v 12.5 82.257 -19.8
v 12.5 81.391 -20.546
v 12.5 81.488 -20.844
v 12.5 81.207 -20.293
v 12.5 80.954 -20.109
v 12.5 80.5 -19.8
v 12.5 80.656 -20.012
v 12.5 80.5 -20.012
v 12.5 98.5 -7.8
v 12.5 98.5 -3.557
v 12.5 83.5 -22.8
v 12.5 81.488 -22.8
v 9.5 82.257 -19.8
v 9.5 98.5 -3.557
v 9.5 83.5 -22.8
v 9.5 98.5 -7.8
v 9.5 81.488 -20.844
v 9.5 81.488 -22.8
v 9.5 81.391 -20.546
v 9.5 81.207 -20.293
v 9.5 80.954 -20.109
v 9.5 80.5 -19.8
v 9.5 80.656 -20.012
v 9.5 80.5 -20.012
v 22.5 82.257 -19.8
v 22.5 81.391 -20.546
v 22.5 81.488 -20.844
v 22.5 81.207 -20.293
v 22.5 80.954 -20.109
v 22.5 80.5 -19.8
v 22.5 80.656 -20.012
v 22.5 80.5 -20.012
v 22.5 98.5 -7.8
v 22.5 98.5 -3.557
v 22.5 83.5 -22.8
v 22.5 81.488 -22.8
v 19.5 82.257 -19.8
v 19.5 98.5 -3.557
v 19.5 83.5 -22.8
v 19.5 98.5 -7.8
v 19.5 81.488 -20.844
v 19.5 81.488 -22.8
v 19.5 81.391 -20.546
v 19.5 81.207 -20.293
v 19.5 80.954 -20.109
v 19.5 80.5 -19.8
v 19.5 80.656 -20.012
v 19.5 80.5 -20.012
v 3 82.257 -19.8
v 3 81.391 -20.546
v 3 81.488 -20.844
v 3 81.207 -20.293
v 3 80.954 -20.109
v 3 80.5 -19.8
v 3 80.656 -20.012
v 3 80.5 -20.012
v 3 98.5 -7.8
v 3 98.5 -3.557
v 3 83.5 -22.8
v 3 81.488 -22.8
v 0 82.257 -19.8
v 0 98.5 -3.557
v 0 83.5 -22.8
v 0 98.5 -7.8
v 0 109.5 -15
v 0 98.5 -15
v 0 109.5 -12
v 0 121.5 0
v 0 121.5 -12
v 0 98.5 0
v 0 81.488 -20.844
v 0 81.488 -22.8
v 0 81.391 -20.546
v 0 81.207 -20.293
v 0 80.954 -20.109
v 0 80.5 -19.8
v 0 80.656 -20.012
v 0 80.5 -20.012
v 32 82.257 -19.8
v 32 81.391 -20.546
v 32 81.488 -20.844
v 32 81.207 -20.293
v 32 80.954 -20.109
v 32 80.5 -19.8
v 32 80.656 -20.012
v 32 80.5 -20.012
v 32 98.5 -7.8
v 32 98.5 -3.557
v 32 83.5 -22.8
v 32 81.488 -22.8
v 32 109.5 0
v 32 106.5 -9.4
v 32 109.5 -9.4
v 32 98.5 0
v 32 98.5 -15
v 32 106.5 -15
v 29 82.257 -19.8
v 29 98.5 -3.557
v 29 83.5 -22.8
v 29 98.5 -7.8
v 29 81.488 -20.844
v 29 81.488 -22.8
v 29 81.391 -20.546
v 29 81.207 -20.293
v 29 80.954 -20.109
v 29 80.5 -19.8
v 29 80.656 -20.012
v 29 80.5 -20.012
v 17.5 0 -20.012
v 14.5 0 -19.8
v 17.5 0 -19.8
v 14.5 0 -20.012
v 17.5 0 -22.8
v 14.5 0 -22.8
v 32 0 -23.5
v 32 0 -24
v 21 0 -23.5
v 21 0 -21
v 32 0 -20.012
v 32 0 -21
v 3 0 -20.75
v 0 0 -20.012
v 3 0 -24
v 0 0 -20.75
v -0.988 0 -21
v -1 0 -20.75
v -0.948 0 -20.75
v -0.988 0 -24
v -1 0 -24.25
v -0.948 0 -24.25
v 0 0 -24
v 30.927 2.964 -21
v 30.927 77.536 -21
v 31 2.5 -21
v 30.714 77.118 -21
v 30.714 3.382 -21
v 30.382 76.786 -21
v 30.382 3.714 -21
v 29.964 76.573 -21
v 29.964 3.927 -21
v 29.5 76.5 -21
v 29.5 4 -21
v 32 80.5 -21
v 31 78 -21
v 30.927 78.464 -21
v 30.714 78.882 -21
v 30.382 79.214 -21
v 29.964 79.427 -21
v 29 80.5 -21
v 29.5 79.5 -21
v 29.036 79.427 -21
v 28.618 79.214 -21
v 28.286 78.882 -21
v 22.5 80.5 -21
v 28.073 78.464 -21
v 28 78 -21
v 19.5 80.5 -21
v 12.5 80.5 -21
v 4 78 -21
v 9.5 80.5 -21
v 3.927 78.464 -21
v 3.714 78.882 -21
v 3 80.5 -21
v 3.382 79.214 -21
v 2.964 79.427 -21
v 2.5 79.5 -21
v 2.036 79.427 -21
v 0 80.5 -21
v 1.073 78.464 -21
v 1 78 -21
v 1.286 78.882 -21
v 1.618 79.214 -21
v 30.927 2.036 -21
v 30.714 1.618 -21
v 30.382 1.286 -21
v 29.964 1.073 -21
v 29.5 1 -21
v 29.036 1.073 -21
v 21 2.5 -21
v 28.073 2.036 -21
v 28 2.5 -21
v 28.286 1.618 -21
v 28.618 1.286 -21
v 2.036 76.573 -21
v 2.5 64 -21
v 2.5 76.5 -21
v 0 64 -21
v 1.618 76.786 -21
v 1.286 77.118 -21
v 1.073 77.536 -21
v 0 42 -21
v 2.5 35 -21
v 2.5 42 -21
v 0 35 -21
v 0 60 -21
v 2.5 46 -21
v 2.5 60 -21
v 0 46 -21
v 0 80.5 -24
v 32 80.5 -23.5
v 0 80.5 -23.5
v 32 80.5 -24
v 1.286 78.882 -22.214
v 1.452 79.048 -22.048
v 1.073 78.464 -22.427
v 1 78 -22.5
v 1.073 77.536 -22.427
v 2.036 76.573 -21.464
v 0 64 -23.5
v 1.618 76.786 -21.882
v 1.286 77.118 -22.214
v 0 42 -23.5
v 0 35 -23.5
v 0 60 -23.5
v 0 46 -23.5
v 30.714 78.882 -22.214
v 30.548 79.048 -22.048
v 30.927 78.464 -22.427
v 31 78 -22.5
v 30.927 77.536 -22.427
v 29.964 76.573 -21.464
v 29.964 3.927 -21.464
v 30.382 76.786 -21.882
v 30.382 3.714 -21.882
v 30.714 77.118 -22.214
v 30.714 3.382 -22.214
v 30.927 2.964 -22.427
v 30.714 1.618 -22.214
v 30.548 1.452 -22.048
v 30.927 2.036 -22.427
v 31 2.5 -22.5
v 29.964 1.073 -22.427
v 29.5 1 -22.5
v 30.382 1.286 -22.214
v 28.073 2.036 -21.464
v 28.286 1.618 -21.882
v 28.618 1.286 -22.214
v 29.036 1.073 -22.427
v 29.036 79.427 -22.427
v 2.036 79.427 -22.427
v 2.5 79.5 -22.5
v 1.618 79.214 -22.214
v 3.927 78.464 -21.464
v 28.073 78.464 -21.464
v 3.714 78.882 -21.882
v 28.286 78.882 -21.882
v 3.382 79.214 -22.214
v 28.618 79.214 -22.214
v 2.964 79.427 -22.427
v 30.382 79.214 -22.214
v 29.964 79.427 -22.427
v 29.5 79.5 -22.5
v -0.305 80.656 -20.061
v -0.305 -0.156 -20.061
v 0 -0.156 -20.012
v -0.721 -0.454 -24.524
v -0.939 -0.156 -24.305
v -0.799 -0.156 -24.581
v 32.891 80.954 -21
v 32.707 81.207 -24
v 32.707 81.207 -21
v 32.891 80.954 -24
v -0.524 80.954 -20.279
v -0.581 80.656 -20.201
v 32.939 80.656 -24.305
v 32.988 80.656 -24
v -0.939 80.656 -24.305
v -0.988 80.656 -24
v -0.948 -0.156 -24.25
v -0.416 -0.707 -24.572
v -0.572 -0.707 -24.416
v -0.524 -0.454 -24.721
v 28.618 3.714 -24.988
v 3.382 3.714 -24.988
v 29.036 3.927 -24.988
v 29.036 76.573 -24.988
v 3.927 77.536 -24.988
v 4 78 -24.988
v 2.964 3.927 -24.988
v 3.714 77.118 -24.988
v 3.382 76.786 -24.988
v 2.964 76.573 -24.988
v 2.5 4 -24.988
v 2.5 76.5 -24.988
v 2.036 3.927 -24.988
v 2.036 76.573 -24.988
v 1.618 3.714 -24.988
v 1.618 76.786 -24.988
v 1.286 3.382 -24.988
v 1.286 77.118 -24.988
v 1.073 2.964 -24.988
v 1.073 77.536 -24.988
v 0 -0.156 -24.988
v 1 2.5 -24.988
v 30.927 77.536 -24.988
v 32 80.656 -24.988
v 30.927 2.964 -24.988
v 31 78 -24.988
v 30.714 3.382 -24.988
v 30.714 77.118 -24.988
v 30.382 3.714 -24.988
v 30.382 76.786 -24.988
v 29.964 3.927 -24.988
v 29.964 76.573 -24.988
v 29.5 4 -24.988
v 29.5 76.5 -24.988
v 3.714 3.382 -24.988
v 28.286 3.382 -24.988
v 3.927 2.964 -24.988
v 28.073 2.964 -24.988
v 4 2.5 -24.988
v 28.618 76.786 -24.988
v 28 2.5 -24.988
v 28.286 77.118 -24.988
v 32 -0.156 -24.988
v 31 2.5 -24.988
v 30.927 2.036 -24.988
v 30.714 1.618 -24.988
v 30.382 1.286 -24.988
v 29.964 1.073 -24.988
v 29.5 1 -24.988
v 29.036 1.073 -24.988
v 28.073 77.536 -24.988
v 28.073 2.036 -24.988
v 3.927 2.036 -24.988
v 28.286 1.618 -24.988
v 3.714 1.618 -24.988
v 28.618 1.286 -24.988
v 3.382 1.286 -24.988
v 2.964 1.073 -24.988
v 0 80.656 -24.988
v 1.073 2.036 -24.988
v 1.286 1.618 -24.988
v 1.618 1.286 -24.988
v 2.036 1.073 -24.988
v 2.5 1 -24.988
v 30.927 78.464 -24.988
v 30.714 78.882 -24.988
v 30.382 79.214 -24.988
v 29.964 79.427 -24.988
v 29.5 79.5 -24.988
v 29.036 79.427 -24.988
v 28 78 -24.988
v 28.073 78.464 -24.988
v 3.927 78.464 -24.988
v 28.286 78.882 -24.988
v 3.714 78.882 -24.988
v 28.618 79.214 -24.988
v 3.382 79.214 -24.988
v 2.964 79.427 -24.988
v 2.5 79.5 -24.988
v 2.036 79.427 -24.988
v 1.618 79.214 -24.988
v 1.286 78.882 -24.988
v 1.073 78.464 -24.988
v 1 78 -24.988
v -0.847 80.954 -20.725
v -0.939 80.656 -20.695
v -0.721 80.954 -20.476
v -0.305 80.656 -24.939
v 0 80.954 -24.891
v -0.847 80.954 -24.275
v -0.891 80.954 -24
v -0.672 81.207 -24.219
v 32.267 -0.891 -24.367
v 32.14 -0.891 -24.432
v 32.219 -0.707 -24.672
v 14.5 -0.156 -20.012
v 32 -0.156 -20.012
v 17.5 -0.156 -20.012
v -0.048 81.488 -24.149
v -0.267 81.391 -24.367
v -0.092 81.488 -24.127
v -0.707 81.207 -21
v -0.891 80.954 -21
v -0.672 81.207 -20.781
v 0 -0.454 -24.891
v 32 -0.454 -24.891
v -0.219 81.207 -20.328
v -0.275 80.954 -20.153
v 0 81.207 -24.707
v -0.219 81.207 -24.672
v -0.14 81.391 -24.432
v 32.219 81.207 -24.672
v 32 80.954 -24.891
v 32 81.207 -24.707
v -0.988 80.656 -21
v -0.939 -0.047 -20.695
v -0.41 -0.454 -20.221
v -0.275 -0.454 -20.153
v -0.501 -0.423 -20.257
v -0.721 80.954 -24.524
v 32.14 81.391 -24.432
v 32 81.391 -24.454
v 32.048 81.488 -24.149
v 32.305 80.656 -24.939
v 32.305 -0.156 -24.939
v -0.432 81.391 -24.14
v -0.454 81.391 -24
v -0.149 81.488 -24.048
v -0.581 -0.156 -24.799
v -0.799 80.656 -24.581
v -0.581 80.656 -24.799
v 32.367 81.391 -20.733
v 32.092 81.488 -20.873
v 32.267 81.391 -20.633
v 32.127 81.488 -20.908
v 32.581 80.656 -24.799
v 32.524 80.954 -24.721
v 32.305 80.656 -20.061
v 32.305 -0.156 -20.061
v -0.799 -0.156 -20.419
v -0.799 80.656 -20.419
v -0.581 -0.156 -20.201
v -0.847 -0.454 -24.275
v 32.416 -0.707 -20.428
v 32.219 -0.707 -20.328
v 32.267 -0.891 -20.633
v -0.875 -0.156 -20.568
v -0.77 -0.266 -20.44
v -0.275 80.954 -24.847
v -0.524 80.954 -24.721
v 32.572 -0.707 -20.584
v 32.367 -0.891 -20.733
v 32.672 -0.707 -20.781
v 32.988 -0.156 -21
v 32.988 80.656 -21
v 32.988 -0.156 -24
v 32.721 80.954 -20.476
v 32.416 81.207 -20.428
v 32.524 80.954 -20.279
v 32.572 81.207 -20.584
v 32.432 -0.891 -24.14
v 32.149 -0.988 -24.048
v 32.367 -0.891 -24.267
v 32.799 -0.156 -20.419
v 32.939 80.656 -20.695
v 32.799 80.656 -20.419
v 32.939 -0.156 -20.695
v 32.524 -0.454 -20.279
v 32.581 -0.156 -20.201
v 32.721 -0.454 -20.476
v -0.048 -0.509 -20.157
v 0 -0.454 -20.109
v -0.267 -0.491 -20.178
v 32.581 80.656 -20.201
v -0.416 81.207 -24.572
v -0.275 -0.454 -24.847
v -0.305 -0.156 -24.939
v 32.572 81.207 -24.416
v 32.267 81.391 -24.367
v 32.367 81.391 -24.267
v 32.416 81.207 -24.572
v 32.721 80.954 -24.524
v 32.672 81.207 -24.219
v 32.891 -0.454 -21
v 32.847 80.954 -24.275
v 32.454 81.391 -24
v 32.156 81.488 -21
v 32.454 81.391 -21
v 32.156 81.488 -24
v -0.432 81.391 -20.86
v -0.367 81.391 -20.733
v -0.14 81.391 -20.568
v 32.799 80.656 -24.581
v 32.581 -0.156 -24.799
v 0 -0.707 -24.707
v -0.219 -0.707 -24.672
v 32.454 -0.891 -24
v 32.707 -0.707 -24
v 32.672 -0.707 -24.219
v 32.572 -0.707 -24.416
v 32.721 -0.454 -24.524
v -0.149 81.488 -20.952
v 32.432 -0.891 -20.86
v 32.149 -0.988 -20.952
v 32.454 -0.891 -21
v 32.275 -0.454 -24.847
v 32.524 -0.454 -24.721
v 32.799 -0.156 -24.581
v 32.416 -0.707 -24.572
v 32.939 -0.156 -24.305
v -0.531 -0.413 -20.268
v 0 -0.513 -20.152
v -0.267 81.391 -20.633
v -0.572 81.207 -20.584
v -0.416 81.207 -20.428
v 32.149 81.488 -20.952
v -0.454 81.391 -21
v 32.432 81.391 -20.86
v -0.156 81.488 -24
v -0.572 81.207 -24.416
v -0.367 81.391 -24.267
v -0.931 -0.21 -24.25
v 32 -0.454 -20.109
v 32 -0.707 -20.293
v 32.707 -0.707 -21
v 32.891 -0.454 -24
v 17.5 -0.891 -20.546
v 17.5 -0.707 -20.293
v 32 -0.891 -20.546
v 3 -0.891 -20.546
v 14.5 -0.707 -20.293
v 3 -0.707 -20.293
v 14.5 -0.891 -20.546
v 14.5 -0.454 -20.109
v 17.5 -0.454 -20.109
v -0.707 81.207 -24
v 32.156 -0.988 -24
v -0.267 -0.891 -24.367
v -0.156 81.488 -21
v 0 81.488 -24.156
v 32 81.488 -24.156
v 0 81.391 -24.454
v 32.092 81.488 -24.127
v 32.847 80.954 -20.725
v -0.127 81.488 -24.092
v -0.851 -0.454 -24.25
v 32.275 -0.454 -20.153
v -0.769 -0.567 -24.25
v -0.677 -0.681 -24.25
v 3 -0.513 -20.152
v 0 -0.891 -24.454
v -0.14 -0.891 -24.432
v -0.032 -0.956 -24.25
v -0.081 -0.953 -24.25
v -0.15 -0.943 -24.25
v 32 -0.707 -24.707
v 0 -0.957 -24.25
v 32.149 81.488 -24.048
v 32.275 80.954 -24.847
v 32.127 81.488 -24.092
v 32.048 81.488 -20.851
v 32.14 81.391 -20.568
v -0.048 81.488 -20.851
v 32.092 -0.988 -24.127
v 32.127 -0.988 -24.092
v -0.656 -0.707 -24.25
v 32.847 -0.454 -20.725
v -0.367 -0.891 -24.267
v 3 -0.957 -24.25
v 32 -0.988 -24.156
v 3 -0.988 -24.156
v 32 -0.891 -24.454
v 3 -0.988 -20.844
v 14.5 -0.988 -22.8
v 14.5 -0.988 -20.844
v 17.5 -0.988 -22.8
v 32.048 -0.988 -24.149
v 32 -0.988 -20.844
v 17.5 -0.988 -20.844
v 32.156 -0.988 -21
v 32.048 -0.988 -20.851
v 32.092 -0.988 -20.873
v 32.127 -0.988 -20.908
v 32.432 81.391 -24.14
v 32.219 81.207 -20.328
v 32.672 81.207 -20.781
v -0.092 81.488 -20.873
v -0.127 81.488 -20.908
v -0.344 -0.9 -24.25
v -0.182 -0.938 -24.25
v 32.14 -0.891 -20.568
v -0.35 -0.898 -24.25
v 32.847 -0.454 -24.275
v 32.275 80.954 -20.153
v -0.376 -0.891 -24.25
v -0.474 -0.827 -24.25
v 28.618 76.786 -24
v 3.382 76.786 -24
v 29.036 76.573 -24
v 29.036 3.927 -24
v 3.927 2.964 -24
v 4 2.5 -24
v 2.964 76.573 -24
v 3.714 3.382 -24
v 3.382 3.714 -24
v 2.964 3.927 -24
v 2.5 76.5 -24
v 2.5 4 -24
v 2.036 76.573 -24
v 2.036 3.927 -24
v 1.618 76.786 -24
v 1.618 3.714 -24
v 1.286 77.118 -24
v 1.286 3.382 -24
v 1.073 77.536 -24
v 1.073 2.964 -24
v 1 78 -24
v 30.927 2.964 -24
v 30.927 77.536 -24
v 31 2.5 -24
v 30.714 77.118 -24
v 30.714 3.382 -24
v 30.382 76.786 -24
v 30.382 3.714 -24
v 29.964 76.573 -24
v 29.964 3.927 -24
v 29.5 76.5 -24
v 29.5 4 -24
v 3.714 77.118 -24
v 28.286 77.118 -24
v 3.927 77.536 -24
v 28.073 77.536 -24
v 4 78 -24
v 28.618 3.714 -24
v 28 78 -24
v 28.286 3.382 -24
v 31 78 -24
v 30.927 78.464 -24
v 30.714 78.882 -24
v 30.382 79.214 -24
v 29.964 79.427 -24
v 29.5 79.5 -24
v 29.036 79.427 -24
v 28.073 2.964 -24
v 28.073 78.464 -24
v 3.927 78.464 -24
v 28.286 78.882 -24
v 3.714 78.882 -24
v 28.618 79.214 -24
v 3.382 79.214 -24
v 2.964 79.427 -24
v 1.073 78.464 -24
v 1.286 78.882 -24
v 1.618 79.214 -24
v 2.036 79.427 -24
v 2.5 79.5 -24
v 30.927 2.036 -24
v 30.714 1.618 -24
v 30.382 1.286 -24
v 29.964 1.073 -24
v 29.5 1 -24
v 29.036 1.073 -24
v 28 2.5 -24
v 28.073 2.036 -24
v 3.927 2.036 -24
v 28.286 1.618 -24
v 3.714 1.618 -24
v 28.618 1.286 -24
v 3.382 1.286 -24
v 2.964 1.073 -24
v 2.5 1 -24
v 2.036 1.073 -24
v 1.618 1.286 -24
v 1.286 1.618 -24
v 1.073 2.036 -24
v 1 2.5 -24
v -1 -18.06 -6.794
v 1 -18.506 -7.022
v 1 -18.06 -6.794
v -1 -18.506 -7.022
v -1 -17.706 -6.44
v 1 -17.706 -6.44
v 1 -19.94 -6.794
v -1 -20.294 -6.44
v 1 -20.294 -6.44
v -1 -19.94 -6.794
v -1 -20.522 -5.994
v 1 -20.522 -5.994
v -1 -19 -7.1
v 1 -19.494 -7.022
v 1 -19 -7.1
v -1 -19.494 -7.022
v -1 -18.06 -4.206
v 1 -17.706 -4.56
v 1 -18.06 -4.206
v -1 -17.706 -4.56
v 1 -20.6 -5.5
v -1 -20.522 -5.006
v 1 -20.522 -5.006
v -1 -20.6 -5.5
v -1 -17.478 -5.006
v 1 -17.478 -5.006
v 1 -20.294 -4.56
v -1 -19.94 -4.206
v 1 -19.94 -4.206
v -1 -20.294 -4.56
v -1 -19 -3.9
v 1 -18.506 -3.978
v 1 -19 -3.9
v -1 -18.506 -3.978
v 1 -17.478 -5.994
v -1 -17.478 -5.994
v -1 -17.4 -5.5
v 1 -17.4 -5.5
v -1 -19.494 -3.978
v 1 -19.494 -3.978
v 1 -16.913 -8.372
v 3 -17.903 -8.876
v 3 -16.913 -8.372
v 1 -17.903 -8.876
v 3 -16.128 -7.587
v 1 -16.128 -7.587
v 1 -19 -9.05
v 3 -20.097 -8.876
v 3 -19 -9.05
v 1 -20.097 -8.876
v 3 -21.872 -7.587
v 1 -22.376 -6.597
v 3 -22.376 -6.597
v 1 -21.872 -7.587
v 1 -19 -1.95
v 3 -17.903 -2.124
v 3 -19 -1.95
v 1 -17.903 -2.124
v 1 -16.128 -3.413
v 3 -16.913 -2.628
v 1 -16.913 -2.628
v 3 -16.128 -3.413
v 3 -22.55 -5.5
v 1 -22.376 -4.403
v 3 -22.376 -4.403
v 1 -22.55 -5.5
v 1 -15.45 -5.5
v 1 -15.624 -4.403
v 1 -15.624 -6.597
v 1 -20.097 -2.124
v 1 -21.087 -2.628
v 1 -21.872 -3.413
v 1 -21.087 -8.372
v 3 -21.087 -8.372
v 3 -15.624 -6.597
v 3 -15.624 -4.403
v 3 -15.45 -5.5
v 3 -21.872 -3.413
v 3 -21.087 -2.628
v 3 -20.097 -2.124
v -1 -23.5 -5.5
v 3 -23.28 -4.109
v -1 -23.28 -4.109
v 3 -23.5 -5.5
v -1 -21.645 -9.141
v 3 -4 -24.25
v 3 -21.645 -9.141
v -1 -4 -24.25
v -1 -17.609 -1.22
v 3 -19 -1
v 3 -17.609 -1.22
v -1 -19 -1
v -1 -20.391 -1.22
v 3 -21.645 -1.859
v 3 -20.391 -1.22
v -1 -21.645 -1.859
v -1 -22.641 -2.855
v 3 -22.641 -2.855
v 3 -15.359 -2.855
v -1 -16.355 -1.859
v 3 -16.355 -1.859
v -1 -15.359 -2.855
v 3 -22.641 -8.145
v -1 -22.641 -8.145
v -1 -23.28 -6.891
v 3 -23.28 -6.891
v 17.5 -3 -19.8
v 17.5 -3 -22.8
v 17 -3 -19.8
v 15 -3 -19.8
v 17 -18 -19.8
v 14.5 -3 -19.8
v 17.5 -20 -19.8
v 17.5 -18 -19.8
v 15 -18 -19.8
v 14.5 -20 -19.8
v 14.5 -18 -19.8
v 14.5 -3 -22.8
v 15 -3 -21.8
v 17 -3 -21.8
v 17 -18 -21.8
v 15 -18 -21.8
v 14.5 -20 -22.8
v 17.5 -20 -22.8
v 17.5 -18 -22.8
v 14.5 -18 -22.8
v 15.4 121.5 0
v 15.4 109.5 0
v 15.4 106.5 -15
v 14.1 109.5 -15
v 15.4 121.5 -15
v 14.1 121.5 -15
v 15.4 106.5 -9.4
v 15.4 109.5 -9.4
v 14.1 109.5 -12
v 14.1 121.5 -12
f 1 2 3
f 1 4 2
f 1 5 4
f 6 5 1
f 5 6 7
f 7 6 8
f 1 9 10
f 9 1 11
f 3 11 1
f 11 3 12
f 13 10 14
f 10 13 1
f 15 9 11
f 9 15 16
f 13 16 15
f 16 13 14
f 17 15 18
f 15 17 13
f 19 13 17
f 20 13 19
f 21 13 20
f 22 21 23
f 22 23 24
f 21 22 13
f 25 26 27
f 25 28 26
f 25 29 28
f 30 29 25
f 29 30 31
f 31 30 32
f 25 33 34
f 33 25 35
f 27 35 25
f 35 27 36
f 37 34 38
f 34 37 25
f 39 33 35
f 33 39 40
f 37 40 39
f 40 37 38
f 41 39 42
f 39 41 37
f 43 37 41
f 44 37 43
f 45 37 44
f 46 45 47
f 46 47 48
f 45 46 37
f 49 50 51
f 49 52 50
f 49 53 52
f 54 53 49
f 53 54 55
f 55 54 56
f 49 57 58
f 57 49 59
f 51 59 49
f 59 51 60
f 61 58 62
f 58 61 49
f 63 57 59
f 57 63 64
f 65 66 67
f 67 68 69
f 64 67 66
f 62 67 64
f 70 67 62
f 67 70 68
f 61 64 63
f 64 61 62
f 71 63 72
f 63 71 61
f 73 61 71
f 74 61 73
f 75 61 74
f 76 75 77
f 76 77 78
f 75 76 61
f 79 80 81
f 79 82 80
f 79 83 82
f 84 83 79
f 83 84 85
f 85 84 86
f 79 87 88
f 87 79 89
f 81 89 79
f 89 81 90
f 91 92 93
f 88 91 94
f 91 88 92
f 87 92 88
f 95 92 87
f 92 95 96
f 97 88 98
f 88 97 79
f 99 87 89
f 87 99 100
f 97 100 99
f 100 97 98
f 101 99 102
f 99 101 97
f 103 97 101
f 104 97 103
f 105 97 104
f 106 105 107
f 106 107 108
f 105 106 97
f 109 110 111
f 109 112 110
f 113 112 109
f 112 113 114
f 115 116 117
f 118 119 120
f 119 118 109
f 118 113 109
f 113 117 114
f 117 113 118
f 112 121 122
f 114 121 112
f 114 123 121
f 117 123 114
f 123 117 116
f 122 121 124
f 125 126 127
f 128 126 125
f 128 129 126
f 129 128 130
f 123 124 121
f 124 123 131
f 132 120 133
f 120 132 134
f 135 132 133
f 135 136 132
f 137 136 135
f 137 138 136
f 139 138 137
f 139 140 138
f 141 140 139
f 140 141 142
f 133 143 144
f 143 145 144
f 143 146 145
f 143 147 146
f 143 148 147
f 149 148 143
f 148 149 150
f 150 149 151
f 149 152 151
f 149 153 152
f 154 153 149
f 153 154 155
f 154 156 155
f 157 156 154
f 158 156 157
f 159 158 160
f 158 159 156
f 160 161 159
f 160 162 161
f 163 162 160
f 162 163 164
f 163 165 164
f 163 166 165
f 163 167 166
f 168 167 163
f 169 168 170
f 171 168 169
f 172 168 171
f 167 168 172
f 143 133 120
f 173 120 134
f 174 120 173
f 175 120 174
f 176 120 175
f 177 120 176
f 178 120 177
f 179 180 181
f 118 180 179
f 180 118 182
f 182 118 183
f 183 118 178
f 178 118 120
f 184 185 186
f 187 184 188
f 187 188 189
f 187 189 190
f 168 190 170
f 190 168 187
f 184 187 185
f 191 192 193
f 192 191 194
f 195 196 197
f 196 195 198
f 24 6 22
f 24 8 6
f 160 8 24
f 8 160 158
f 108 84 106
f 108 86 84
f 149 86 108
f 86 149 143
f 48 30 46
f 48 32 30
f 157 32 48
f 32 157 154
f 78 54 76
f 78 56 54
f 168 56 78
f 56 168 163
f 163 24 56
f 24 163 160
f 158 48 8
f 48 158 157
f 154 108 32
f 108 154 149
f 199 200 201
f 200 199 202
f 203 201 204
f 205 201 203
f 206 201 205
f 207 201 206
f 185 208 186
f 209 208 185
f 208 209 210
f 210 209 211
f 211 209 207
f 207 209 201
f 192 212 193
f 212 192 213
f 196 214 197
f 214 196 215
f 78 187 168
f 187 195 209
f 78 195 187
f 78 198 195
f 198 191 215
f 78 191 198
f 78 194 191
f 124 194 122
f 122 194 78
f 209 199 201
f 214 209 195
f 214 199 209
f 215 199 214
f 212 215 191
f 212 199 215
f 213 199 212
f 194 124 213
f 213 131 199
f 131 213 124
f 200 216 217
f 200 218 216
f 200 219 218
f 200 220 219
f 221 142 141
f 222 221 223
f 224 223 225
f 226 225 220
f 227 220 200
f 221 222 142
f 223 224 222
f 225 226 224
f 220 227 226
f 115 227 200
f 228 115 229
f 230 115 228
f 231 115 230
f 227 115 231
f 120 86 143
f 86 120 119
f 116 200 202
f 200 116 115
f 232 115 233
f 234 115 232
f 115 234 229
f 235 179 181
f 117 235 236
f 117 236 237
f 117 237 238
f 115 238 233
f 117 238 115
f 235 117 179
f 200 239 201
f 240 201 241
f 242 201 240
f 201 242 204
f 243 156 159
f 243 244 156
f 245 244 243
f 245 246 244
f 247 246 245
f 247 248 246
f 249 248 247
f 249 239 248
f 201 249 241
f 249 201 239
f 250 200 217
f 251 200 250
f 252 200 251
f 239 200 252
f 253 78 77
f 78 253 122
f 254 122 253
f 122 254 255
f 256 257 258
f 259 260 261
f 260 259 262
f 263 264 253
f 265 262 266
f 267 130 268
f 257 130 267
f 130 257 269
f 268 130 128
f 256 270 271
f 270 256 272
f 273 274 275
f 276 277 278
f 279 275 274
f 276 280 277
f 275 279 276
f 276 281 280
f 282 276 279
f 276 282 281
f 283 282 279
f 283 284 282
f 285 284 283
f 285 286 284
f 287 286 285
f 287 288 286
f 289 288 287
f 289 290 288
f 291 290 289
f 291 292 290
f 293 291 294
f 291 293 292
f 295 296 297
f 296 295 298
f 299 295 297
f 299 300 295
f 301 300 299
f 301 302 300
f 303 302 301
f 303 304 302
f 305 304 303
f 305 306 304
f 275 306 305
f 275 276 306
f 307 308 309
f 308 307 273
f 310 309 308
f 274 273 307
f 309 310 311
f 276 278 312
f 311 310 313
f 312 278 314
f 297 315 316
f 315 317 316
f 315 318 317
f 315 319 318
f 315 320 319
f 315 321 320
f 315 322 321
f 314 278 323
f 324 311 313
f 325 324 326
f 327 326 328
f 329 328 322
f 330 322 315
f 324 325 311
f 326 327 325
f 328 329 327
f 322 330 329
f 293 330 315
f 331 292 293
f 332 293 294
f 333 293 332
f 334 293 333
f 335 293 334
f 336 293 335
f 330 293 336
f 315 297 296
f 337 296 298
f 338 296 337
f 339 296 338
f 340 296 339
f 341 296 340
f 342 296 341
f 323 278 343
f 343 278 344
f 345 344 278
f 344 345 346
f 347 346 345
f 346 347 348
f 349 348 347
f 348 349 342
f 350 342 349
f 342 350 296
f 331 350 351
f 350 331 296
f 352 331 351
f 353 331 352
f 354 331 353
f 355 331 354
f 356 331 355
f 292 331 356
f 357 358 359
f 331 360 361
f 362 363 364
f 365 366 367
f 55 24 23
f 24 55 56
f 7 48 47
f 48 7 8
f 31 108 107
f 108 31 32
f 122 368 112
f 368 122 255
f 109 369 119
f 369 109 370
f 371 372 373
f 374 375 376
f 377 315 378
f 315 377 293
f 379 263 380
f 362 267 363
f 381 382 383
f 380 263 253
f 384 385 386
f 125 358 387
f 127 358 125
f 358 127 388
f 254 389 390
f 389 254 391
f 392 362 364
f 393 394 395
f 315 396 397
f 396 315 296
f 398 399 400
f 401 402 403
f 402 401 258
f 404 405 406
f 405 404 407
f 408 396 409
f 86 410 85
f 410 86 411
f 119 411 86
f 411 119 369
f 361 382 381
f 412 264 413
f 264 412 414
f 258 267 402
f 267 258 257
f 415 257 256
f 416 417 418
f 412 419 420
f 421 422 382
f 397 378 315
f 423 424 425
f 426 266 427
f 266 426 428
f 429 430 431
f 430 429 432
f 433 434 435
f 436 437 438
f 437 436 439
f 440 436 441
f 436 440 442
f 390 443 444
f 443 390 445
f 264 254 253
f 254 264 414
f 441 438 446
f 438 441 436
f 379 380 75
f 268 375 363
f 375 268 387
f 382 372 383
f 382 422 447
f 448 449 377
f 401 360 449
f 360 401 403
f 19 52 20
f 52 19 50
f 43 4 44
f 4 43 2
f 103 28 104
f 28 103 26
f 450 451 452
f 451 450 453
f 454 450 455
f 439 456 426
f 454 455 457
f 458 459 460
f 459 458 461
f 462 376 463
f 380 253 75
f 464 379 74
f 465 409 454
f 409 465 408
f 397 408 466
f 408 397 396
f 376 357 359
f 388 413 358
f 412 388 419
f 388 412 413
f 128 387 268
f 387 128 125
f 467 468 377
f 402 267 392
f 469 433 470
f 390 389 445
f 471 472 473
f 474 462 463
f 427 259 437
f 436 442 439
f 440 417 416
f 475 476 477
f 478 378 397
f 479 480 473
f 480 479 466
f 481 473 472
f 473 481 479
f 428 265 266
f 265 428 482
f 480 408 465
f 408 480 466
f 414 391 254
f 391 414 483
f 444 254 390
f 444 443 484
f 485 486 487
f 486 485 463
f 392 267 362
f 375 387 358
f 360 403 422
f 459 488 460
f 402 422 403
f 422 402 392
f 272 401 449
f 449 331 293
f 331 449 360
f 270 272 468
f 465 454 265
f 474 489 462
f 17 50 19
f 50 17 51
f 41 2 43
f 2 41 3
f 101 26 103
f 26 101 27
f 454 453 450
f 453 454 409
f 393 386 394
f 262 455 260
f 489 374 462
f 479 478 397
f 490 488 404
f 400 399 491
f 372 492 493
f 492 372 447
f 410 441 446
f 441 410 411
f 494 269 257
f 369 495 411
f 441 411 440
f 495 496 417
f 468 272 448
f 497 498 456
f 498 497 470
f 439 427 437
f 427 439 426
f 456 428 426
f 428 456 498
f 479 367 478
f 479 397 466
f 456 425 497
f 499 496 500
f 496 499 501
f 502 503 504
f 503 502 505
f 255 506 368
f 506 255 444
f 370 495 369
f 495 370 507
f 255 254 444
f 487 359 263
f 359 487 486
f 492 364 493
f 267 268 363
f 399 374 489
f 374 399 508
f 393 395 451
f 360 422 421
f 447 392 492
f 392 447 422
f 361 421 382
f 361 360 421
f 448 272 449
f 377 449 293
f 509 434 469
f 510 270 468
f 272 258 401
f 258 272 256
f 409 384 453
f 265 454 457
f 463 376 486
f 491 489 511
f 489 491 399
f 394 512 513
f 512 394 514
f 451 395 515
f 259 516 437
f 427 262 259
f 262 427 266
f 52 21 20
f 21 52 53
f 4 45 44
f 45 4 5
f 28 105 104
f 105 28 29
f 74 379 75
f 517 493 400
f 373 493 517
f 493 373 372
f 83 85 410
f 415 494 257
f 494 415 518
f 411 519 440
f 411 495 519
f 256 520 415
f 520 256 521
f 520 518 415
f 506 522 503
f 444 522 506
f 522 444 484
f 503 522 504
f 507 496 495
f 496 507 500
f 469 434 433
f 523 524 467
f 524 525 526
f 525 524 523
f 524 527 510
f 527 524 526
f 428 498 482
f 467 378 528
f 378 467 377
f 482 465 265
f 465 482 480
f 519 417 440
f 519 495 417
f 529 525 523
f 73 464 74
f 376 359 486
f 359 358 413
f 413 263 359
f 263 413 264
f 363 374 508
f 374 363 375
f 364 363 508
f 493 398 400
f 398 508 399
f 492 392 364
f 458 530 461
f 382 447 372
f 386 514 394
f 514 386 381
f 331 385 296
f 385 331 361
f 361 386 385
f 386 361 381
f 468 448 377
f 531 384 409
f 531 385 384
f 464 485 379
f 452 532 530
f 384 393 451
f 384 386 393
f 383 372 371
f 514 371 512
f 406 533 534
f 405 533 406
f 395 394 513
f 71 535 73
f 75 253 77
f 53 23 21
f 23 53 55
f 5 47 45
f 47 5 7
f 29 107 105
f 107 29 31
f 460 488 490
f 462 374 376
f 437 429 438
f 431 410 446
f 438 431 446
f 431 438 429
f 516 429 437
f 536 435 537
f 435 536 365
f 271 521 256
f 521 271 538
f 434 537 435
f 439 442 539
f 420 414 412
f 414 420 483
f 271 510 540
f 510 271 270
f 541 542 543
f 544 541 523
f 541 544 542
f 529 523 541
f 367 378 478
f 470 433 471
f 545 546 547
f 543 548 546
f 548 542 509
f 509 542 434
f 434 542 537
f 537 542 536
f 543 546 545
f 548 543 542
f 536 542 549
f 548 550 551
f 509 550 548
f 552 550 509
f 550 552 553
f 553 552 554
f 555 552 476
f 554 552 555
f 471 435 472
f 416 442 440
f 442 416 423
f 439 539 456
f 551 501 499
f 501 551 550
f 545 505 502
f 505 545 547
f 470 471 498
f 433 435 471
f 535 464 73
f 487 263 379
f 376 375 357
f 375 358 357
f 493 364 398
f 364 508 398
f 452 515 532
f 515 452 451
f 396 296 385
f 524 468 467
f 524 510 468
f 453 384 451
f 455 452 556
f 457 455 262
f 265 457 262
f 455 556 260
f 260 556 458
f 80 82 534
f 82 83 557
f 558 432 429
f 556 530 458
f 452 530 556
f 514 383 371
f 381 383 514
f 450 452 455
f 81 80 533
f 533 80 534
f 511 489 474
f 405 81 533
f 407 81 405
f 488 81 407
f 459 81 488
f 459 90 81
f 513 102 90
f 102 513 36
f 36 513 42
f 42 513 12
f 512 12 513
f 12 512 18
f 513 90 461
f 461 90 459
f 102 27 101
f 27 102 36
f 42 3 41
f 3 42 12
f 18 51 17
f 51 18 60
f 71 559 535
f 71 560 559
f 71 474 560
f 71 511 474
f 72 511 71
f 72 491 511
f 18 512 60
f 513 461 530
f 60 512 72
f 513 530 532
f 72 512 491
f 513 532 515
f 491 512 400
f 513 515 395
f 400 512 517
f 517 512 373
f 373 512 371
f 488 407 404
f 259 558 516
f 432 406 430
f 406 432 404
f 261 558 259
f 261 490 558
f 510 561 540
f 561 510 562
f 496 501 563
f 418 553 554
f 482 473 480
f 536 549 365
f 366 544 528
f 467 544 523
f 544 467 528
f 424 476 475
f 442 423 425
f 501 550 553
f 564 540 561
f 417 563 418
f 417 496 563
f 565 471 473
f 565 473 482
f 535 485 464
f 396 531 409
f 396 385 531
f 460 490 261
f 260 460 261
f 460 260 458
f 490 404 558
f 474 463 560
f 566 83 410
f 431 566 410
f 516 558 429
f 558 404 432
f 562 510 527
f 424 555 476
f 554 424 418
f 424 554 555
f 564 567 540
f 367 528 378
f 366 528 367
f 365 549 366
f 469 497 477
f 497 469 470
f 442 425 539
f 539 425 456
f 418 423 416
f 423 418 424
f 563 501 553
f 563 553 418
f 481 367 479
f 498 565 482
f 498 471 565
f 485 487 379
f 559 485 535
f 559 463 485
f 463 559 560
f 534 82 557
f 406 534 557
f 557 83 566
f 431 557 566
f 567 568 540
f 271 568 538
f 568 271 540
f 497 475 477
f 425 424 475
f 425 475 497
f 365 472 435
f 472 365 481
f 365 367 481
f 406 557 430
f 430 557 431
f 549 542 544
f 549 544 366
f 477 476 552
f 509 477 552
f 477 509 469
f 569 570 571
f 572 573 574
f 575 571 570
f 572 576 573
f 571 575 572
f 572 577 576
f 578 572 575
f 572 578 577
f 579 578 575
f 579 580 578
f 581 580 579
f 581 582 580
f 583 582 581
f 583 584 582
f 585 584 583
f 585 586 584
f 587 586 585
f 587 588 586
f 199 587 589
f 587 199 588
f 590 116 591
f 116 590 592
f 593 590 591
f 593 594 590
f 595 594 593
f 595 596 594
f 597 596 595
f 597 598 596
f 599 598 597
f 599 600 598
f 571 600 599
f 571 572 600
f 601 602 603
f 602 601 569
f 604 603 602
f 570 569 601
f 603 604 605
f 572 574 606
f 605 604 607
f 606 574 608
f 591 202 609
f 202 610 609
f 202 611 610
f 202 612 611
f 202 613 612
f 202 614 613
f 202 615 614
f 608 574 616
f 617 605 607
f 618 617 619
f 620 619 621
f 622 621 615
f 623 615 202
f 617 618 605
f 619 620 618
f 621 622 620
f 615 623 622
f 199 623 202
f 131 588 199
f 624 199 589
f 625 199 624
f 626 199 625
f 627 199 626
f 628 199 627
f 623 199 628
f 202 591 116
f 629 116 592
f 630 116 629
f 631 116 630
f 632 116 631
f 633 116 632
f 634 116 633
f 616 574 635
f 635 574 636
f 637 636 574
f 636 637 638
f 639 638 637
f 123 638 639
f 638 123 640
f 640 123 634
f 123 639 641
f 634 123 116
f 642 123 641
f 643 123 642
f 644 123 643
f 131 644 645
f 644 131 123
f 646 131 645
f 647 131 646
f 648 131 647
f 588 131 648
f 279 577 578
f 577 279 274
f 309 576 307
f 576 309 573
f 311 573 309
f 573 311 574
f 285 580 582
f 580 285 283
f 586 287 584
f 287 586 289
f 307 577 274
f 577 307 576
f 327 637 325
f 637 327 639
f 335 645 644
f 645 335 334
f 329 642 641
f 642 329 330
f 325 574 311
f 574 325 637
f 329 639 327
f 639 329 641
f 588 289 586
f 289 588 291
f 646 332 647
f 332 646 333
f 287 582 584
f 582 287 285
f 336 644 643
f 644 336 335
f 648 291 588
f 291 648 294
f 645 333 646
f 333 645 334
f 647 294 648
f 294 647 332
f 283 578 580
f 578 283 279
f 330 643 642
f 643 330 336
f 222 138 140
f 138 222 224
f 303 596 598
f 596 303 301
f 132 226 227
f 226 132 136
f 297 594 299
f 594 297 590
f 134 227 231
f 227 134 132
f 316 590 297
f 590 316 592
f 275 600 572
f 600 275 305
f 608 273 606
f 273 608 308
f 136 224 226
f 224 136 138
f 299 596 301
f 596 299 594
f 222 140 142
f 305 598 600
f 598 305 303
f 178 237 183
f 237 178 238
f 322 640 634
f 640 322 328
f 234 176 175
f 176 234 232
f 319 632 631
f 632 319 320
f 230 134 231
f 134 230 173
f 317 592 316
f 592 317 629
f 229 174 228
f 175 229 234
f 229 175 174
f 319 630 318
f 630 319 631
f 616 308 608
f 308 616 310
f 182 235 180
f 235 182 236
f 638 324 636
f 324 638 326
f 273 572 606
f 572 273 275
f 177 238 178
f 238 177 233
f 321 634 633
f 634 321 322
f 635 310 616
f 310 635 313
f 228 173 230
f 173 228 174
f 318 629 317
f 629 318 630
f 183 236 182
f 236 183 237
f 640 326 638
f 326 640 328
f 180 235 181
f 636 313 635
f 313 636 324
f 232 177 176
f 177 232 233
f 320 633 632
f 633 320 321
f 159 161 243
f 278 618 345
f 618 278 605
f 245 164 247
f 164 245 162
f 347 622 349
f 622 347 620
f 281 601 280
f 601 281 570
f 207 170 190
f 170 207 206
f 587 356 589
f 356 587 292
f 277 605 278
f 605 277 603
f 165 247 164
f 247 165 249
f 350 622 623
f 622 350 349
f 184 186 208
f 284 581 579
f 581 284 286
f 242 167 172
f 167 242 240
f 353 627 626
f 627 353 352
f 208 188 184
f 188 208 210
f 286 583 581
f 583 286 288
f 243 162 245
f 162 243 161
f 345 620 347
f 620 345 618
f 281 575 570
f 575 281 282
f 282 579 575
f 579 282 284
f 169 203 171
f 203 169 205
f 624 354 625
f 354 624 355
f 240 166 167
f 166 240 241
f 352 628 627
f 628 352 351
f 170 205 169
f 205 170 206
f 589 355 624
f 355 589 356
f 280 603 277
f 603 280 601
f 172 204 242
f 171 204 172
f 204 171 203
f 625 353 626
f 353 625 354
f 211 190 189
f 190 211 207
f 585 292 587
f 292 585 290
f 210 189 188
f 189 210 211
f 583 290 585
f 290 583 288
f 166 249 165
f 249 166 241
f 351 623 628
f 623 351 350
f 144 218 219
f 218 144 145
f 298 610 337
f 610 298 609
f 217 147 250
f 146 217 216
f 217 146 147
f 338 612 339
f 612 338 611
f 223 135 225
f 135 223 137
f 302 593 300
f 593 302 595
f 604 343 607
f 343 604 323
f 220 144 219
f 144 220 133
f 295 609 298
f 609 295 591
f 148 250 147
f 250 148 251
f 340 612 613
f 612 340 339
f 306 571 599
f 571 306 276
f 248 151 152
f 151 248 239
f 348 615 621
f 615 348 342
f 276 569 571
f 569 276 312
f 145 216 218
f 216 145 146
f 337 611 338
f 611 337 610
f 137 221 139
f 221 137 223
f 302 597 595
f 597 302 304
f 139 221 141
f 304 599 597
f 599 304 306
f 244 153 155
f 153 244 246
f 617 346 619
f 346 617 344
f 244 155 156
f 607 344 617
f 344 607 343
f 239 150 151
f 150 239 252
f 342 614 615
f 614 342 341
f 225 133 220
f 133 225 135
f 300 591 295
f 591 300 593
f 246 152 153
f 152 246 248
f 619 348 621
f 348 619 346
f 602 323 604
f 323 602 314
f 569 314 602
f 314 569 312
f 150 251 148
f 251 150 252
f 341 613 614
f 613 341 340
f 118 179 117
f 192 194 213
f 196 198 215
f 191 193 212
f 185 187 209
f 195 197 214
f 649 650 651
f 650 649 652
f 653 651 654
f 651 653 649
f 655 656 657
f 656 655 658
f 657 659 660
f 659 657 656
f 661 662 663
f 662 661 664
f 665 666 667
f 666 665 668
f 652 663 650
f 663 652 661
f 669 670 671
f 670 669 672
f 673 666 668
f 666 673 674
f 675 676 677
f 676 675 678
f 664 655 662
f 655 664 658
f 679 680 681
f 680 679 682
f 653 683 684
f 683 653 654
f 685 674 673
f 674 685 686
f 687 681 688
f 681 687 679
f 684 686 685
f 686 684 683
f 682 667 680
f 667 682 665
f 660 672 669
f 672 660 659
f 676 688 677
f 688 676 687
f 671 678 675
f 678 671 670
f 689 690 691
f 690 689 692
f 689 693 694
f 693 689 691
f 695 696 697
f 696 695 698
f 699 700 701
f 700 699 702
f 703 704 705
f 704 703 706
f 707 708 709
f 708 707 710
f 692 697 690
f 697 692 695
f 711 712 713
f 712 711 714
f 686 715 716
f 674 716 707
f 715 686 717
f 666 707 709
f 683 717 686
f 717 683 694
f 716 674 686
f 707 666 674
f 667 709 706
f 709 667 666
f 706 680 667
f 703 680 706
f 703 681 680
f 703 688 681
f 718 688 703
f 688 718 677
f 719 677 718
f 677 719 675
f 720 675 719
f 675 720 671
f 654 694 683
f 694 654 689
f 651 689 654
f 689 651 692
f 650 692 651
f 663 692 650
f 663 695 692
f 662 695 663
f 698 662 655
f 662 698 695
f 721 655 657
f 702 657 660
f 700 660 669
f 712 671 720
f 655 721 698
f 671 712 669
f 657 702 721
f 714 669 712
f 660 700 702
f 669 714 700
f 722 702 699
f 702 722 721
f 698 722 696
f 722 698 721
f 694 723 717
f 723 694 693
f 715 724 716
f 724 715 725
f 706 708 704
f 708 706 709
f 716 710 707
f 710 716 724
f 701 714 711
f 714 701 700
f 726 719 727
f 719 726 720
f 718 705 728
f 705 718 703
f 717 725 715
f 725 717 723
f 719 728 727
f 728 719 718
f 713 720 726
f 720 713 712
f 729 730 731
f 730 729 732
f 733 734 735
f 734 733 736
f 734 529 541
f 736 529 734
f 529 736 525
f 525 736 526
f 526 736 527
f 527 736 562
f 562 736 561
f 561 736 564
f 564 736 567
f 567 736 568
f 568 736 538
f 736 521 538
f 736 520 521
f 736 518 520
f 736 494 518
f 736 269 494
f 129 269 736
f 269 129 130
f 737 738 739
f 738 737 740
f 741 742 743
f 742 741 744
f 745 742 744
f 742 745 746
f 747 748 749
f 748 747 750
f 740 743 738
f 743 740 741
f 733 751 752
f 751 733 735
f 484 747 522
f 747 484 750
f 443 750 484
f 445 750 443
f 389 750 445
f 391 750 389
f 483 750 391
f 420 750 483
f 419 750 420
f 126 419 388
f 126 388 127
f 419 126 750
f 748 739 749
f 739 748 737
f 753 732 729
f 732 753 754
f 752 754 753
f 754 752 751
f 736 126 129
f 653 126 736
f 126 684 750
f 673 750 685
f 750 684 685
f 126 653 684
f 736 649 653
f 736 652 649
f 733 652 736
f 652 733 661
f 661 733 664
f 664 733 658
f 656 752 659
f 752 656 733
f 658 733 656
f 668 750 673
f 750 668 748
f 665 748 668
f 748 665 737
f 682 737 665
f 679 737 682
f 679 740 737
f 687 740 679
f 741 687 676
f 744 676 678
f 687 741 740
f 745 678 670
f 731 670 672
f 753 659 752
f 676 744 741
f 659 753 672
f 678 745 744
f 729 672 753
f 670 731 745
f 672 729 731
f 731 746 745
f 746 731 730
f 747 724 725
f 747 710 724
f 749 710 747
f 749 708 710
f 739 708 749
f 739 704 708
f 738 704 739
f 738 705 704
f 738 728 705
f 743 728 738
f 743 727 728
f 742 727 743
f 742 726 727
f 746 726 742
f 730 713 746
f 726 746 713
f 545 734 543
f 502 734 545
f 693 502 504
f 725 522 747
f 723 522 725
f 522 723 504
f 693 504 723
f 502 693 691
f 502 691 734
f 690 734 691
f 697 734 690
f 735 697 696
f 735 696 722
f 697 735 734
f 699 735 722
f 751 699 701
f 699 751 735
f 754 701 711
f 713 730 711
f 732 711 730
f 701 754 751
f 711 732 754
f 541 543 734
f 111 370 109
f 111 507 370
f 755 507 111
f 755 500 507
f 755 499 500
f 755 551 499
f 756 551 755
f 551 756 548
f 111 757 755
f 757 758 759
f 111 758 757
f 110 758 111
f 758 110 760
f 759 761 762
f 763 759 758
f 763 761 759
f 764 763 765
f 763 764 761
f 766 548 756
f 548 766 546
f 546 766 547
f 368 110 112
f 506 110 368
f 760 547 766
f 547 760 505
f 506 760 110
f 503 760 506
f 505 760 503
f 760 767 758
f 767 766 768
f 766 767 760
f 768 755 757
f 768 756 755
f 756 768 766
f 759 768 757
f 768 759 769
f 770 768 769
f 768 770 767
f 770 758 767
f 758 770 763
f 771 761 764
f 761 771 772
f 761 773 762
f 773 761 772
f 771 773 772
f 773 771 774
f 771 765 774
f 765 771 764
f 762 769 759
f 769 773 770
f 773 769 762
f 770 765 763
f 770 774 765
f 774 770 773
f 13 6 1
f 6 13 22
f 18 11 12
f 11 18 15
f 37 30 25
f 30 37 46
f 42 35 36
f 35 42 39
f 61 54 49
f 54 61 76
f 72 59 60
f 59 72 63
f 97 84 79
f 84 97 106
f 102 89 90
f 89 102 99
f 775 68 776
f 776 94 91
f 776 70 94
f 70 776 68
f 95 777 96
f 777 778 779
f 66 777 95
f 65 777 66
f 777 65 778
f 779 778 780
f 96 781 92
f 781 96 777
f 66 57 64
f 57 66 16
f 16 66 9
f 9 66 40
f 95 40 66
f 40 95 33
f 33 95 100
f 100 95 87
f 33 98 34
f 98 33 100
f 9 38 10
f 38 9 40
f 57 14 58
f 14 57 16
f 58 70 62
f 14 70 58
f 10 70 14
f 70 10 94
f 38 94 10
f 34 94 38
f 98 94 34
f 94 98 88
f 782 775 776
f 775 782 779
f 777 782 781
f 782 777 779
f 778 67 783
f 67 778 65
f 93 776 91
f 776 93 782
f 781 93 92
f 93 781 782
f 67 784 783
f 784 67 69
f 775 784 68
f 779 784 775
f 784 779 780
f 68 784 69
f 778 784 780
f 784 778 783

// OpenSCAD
$fn=20;

breite = 32;
tiefe = 3;
hoehe = 80.5;

schiene = 2.5;
platinendicke = 1.2;


wanddicke = 1;
edge_radius = wanddicke;

platinentop_bis_top = 21;

module schienen() {
    cube([schiene, tiefe, schiene]);

    translate([breite-schiene, 0, 0])
    cube([schiene, tiefe, schiene]);

    translate([0, 0, schiene + platinendicke]) {
        cube([schiene, tiefe, schiene]);
        
        translate([breite-schiene, 0, 0])
        cube([schiene, tiefe, schiene]);
    }
}

schraube=3;

module schr() {
    translate([schraube/2, 20, schraube/2])
    rotate([90, 0, 0])
    cylinder(h=20, d=schraube);
}

module auflage() {
    // pcbauflage
    translate([0, 0, 0])
    linear_extrude(hoehe)
    polygon(points=[[0,0], [0, 2.5], [2.5, 0]]);

    translate([breite, 0, hoehe])
    rotate([0, 180, 0])
    linear_extrude(hoehe)
    polygon(points=[[0,0], [0, 2.5], [2.5, 0]]);

    translate([breite, 0, 0])
    rotate([0, -90, 0])
    linear_extrude(breite)
    polygon(points=[[0,0], [0, 2.5], [2.5, 0]]);

    translate([0, 0, hoehe])
    rotate([0, 90, 0])
    linear_extrude(breite)
    polygon(points=[[0,0], [0, 2.5], [2.5, 0]]);
}

module pcb_holder() {
    translate([0, 0, -platinentop_bis_top]) // 21mm from top
    rotate([-90, 0, 0])
    difference() {
        union() {
            difference() {
                hull() {
                    sphere(r=edge_radius);
                    translate([breite, 0, 0]) sphere(r=edge_radius);
                    translate([breite, tiefe, 0]) sphere(r=edge_radius);
                    translate([0, tiefe, 0]) sphere(r=edge_radius);
                    translate([0, 0, hoehe]) {
                        sphere(r=edge_radius);
                        translate([breite, 0, 0]) sphere(r=edge_radius);
                        translate([breite, tiefe, 0]) sphere(r=edge_radius);
                        translate([0, tiefe, 0]) sphere(r=edge_radius);
                    }
                }
                union() {
                    translate([0, 0-10, 0]) cube([breite, tiefe+10, hoehe]);
                    
                }
            }
            auflage();
        }
        translate([1, 0, 1]) schr();
        translate([breite-schraube-1, 0, 1]) schr();
        translate([1, 0, hoehe-schraube-1]) schr();
        translate([breite-schraube-1, 0, hoehe-schraube-1]) schr();
        
        cube([21, 3, 35]);
        translate([0, 0, 42]) cube([9, 3, 4]);
        translate([0, 0, 60]) cube([9, 3, 4]);
    }
}


pcb_holder();

// kabelzugentlastung input
translate([(breite-3)/2, -3, platinendicke-platinentop_bis_top-3]) cube([3, 3, 3]);
translate([(breite-2)/2, -20, platinendicke-platinentop_bis_top-2]) cube([2, 20, 2]);
translate([(breite-3)/2, -20, platinendicke-platinentop_bis_top-3]) cube([3, 2, 3]);

translate([0, hoehe+3, platinendicke-platinentop_bis_top-3])
rotate([45, 0, 0]) union() {
    translate([11-3/2, 0, 0]) cube([3, 25, 3]);
    translate([breite-11-3/2, 0, 0]) cube([3, 25, 3]);
    translate([0, 0, 0]) cube([3, 25, 3]);
    translate([breite-3, 0, 0]) cube([3, 25, 3]);
}

translate([11-3/2, hoehe, platinendicke-platinentop_bis_top-3]) cube([3, 3, 3]);
translate([breite-11-3/2, hoehe, platinendicke-platinentop_bis_top-3]) cube([3, 3, 3]);
translate([0, hoehe, platinendicke-platinentop_bis_top-3]) cube([3, 3, 3]);
translate([breite-3, hoehe, platinendicke-platinentop_bis_top-3]) cube([3, 3, 3]);

translate([0, hoehe+26-8, -12-3]) cube([breite, 8, 12+3]);
translate([0, hoehe+29-8, -12-3]) cube([10+5.4, 8, 12+3]);

translate([0, hoehe+26-8+3, -9.4]) cube([breite, 8, 9.4]);
translate([0, hoehe+29, -12]) cube([10+5.4, 12, 12]);

translate([10+5.4-1.3, hoehe+29-8, -12-3]) cube([1.3, 20, 12+3]);

// y-offset zu rückseite usb buchse: CAD 0-punkt ist bei 109.5mm
// schraubenloch ist bei 128.5 -> CAD bei y=-19mm z=-5.5

difference() {
    hull() {
        translate([-wanddicke, -4, -platinentop_bis_top-3.25]) cube([4, 4, 3.5]);
        translate([-wanddicke, -19, -5.5]) rotate([0, 90, 0]) cylinder(h=4, d=9);
    }
    union() {
        translate([-5, -19, -5.5]) rotate([0, 90, 0]) cylinder(h=10, d=3.2);
        translate([-wanddicke+2, -19, -5.5]) rotate([0, 90, 0]) cylinder(h=4, d=7.1);
    }
}




//cube([3, hoehe+29+12, 3]);
